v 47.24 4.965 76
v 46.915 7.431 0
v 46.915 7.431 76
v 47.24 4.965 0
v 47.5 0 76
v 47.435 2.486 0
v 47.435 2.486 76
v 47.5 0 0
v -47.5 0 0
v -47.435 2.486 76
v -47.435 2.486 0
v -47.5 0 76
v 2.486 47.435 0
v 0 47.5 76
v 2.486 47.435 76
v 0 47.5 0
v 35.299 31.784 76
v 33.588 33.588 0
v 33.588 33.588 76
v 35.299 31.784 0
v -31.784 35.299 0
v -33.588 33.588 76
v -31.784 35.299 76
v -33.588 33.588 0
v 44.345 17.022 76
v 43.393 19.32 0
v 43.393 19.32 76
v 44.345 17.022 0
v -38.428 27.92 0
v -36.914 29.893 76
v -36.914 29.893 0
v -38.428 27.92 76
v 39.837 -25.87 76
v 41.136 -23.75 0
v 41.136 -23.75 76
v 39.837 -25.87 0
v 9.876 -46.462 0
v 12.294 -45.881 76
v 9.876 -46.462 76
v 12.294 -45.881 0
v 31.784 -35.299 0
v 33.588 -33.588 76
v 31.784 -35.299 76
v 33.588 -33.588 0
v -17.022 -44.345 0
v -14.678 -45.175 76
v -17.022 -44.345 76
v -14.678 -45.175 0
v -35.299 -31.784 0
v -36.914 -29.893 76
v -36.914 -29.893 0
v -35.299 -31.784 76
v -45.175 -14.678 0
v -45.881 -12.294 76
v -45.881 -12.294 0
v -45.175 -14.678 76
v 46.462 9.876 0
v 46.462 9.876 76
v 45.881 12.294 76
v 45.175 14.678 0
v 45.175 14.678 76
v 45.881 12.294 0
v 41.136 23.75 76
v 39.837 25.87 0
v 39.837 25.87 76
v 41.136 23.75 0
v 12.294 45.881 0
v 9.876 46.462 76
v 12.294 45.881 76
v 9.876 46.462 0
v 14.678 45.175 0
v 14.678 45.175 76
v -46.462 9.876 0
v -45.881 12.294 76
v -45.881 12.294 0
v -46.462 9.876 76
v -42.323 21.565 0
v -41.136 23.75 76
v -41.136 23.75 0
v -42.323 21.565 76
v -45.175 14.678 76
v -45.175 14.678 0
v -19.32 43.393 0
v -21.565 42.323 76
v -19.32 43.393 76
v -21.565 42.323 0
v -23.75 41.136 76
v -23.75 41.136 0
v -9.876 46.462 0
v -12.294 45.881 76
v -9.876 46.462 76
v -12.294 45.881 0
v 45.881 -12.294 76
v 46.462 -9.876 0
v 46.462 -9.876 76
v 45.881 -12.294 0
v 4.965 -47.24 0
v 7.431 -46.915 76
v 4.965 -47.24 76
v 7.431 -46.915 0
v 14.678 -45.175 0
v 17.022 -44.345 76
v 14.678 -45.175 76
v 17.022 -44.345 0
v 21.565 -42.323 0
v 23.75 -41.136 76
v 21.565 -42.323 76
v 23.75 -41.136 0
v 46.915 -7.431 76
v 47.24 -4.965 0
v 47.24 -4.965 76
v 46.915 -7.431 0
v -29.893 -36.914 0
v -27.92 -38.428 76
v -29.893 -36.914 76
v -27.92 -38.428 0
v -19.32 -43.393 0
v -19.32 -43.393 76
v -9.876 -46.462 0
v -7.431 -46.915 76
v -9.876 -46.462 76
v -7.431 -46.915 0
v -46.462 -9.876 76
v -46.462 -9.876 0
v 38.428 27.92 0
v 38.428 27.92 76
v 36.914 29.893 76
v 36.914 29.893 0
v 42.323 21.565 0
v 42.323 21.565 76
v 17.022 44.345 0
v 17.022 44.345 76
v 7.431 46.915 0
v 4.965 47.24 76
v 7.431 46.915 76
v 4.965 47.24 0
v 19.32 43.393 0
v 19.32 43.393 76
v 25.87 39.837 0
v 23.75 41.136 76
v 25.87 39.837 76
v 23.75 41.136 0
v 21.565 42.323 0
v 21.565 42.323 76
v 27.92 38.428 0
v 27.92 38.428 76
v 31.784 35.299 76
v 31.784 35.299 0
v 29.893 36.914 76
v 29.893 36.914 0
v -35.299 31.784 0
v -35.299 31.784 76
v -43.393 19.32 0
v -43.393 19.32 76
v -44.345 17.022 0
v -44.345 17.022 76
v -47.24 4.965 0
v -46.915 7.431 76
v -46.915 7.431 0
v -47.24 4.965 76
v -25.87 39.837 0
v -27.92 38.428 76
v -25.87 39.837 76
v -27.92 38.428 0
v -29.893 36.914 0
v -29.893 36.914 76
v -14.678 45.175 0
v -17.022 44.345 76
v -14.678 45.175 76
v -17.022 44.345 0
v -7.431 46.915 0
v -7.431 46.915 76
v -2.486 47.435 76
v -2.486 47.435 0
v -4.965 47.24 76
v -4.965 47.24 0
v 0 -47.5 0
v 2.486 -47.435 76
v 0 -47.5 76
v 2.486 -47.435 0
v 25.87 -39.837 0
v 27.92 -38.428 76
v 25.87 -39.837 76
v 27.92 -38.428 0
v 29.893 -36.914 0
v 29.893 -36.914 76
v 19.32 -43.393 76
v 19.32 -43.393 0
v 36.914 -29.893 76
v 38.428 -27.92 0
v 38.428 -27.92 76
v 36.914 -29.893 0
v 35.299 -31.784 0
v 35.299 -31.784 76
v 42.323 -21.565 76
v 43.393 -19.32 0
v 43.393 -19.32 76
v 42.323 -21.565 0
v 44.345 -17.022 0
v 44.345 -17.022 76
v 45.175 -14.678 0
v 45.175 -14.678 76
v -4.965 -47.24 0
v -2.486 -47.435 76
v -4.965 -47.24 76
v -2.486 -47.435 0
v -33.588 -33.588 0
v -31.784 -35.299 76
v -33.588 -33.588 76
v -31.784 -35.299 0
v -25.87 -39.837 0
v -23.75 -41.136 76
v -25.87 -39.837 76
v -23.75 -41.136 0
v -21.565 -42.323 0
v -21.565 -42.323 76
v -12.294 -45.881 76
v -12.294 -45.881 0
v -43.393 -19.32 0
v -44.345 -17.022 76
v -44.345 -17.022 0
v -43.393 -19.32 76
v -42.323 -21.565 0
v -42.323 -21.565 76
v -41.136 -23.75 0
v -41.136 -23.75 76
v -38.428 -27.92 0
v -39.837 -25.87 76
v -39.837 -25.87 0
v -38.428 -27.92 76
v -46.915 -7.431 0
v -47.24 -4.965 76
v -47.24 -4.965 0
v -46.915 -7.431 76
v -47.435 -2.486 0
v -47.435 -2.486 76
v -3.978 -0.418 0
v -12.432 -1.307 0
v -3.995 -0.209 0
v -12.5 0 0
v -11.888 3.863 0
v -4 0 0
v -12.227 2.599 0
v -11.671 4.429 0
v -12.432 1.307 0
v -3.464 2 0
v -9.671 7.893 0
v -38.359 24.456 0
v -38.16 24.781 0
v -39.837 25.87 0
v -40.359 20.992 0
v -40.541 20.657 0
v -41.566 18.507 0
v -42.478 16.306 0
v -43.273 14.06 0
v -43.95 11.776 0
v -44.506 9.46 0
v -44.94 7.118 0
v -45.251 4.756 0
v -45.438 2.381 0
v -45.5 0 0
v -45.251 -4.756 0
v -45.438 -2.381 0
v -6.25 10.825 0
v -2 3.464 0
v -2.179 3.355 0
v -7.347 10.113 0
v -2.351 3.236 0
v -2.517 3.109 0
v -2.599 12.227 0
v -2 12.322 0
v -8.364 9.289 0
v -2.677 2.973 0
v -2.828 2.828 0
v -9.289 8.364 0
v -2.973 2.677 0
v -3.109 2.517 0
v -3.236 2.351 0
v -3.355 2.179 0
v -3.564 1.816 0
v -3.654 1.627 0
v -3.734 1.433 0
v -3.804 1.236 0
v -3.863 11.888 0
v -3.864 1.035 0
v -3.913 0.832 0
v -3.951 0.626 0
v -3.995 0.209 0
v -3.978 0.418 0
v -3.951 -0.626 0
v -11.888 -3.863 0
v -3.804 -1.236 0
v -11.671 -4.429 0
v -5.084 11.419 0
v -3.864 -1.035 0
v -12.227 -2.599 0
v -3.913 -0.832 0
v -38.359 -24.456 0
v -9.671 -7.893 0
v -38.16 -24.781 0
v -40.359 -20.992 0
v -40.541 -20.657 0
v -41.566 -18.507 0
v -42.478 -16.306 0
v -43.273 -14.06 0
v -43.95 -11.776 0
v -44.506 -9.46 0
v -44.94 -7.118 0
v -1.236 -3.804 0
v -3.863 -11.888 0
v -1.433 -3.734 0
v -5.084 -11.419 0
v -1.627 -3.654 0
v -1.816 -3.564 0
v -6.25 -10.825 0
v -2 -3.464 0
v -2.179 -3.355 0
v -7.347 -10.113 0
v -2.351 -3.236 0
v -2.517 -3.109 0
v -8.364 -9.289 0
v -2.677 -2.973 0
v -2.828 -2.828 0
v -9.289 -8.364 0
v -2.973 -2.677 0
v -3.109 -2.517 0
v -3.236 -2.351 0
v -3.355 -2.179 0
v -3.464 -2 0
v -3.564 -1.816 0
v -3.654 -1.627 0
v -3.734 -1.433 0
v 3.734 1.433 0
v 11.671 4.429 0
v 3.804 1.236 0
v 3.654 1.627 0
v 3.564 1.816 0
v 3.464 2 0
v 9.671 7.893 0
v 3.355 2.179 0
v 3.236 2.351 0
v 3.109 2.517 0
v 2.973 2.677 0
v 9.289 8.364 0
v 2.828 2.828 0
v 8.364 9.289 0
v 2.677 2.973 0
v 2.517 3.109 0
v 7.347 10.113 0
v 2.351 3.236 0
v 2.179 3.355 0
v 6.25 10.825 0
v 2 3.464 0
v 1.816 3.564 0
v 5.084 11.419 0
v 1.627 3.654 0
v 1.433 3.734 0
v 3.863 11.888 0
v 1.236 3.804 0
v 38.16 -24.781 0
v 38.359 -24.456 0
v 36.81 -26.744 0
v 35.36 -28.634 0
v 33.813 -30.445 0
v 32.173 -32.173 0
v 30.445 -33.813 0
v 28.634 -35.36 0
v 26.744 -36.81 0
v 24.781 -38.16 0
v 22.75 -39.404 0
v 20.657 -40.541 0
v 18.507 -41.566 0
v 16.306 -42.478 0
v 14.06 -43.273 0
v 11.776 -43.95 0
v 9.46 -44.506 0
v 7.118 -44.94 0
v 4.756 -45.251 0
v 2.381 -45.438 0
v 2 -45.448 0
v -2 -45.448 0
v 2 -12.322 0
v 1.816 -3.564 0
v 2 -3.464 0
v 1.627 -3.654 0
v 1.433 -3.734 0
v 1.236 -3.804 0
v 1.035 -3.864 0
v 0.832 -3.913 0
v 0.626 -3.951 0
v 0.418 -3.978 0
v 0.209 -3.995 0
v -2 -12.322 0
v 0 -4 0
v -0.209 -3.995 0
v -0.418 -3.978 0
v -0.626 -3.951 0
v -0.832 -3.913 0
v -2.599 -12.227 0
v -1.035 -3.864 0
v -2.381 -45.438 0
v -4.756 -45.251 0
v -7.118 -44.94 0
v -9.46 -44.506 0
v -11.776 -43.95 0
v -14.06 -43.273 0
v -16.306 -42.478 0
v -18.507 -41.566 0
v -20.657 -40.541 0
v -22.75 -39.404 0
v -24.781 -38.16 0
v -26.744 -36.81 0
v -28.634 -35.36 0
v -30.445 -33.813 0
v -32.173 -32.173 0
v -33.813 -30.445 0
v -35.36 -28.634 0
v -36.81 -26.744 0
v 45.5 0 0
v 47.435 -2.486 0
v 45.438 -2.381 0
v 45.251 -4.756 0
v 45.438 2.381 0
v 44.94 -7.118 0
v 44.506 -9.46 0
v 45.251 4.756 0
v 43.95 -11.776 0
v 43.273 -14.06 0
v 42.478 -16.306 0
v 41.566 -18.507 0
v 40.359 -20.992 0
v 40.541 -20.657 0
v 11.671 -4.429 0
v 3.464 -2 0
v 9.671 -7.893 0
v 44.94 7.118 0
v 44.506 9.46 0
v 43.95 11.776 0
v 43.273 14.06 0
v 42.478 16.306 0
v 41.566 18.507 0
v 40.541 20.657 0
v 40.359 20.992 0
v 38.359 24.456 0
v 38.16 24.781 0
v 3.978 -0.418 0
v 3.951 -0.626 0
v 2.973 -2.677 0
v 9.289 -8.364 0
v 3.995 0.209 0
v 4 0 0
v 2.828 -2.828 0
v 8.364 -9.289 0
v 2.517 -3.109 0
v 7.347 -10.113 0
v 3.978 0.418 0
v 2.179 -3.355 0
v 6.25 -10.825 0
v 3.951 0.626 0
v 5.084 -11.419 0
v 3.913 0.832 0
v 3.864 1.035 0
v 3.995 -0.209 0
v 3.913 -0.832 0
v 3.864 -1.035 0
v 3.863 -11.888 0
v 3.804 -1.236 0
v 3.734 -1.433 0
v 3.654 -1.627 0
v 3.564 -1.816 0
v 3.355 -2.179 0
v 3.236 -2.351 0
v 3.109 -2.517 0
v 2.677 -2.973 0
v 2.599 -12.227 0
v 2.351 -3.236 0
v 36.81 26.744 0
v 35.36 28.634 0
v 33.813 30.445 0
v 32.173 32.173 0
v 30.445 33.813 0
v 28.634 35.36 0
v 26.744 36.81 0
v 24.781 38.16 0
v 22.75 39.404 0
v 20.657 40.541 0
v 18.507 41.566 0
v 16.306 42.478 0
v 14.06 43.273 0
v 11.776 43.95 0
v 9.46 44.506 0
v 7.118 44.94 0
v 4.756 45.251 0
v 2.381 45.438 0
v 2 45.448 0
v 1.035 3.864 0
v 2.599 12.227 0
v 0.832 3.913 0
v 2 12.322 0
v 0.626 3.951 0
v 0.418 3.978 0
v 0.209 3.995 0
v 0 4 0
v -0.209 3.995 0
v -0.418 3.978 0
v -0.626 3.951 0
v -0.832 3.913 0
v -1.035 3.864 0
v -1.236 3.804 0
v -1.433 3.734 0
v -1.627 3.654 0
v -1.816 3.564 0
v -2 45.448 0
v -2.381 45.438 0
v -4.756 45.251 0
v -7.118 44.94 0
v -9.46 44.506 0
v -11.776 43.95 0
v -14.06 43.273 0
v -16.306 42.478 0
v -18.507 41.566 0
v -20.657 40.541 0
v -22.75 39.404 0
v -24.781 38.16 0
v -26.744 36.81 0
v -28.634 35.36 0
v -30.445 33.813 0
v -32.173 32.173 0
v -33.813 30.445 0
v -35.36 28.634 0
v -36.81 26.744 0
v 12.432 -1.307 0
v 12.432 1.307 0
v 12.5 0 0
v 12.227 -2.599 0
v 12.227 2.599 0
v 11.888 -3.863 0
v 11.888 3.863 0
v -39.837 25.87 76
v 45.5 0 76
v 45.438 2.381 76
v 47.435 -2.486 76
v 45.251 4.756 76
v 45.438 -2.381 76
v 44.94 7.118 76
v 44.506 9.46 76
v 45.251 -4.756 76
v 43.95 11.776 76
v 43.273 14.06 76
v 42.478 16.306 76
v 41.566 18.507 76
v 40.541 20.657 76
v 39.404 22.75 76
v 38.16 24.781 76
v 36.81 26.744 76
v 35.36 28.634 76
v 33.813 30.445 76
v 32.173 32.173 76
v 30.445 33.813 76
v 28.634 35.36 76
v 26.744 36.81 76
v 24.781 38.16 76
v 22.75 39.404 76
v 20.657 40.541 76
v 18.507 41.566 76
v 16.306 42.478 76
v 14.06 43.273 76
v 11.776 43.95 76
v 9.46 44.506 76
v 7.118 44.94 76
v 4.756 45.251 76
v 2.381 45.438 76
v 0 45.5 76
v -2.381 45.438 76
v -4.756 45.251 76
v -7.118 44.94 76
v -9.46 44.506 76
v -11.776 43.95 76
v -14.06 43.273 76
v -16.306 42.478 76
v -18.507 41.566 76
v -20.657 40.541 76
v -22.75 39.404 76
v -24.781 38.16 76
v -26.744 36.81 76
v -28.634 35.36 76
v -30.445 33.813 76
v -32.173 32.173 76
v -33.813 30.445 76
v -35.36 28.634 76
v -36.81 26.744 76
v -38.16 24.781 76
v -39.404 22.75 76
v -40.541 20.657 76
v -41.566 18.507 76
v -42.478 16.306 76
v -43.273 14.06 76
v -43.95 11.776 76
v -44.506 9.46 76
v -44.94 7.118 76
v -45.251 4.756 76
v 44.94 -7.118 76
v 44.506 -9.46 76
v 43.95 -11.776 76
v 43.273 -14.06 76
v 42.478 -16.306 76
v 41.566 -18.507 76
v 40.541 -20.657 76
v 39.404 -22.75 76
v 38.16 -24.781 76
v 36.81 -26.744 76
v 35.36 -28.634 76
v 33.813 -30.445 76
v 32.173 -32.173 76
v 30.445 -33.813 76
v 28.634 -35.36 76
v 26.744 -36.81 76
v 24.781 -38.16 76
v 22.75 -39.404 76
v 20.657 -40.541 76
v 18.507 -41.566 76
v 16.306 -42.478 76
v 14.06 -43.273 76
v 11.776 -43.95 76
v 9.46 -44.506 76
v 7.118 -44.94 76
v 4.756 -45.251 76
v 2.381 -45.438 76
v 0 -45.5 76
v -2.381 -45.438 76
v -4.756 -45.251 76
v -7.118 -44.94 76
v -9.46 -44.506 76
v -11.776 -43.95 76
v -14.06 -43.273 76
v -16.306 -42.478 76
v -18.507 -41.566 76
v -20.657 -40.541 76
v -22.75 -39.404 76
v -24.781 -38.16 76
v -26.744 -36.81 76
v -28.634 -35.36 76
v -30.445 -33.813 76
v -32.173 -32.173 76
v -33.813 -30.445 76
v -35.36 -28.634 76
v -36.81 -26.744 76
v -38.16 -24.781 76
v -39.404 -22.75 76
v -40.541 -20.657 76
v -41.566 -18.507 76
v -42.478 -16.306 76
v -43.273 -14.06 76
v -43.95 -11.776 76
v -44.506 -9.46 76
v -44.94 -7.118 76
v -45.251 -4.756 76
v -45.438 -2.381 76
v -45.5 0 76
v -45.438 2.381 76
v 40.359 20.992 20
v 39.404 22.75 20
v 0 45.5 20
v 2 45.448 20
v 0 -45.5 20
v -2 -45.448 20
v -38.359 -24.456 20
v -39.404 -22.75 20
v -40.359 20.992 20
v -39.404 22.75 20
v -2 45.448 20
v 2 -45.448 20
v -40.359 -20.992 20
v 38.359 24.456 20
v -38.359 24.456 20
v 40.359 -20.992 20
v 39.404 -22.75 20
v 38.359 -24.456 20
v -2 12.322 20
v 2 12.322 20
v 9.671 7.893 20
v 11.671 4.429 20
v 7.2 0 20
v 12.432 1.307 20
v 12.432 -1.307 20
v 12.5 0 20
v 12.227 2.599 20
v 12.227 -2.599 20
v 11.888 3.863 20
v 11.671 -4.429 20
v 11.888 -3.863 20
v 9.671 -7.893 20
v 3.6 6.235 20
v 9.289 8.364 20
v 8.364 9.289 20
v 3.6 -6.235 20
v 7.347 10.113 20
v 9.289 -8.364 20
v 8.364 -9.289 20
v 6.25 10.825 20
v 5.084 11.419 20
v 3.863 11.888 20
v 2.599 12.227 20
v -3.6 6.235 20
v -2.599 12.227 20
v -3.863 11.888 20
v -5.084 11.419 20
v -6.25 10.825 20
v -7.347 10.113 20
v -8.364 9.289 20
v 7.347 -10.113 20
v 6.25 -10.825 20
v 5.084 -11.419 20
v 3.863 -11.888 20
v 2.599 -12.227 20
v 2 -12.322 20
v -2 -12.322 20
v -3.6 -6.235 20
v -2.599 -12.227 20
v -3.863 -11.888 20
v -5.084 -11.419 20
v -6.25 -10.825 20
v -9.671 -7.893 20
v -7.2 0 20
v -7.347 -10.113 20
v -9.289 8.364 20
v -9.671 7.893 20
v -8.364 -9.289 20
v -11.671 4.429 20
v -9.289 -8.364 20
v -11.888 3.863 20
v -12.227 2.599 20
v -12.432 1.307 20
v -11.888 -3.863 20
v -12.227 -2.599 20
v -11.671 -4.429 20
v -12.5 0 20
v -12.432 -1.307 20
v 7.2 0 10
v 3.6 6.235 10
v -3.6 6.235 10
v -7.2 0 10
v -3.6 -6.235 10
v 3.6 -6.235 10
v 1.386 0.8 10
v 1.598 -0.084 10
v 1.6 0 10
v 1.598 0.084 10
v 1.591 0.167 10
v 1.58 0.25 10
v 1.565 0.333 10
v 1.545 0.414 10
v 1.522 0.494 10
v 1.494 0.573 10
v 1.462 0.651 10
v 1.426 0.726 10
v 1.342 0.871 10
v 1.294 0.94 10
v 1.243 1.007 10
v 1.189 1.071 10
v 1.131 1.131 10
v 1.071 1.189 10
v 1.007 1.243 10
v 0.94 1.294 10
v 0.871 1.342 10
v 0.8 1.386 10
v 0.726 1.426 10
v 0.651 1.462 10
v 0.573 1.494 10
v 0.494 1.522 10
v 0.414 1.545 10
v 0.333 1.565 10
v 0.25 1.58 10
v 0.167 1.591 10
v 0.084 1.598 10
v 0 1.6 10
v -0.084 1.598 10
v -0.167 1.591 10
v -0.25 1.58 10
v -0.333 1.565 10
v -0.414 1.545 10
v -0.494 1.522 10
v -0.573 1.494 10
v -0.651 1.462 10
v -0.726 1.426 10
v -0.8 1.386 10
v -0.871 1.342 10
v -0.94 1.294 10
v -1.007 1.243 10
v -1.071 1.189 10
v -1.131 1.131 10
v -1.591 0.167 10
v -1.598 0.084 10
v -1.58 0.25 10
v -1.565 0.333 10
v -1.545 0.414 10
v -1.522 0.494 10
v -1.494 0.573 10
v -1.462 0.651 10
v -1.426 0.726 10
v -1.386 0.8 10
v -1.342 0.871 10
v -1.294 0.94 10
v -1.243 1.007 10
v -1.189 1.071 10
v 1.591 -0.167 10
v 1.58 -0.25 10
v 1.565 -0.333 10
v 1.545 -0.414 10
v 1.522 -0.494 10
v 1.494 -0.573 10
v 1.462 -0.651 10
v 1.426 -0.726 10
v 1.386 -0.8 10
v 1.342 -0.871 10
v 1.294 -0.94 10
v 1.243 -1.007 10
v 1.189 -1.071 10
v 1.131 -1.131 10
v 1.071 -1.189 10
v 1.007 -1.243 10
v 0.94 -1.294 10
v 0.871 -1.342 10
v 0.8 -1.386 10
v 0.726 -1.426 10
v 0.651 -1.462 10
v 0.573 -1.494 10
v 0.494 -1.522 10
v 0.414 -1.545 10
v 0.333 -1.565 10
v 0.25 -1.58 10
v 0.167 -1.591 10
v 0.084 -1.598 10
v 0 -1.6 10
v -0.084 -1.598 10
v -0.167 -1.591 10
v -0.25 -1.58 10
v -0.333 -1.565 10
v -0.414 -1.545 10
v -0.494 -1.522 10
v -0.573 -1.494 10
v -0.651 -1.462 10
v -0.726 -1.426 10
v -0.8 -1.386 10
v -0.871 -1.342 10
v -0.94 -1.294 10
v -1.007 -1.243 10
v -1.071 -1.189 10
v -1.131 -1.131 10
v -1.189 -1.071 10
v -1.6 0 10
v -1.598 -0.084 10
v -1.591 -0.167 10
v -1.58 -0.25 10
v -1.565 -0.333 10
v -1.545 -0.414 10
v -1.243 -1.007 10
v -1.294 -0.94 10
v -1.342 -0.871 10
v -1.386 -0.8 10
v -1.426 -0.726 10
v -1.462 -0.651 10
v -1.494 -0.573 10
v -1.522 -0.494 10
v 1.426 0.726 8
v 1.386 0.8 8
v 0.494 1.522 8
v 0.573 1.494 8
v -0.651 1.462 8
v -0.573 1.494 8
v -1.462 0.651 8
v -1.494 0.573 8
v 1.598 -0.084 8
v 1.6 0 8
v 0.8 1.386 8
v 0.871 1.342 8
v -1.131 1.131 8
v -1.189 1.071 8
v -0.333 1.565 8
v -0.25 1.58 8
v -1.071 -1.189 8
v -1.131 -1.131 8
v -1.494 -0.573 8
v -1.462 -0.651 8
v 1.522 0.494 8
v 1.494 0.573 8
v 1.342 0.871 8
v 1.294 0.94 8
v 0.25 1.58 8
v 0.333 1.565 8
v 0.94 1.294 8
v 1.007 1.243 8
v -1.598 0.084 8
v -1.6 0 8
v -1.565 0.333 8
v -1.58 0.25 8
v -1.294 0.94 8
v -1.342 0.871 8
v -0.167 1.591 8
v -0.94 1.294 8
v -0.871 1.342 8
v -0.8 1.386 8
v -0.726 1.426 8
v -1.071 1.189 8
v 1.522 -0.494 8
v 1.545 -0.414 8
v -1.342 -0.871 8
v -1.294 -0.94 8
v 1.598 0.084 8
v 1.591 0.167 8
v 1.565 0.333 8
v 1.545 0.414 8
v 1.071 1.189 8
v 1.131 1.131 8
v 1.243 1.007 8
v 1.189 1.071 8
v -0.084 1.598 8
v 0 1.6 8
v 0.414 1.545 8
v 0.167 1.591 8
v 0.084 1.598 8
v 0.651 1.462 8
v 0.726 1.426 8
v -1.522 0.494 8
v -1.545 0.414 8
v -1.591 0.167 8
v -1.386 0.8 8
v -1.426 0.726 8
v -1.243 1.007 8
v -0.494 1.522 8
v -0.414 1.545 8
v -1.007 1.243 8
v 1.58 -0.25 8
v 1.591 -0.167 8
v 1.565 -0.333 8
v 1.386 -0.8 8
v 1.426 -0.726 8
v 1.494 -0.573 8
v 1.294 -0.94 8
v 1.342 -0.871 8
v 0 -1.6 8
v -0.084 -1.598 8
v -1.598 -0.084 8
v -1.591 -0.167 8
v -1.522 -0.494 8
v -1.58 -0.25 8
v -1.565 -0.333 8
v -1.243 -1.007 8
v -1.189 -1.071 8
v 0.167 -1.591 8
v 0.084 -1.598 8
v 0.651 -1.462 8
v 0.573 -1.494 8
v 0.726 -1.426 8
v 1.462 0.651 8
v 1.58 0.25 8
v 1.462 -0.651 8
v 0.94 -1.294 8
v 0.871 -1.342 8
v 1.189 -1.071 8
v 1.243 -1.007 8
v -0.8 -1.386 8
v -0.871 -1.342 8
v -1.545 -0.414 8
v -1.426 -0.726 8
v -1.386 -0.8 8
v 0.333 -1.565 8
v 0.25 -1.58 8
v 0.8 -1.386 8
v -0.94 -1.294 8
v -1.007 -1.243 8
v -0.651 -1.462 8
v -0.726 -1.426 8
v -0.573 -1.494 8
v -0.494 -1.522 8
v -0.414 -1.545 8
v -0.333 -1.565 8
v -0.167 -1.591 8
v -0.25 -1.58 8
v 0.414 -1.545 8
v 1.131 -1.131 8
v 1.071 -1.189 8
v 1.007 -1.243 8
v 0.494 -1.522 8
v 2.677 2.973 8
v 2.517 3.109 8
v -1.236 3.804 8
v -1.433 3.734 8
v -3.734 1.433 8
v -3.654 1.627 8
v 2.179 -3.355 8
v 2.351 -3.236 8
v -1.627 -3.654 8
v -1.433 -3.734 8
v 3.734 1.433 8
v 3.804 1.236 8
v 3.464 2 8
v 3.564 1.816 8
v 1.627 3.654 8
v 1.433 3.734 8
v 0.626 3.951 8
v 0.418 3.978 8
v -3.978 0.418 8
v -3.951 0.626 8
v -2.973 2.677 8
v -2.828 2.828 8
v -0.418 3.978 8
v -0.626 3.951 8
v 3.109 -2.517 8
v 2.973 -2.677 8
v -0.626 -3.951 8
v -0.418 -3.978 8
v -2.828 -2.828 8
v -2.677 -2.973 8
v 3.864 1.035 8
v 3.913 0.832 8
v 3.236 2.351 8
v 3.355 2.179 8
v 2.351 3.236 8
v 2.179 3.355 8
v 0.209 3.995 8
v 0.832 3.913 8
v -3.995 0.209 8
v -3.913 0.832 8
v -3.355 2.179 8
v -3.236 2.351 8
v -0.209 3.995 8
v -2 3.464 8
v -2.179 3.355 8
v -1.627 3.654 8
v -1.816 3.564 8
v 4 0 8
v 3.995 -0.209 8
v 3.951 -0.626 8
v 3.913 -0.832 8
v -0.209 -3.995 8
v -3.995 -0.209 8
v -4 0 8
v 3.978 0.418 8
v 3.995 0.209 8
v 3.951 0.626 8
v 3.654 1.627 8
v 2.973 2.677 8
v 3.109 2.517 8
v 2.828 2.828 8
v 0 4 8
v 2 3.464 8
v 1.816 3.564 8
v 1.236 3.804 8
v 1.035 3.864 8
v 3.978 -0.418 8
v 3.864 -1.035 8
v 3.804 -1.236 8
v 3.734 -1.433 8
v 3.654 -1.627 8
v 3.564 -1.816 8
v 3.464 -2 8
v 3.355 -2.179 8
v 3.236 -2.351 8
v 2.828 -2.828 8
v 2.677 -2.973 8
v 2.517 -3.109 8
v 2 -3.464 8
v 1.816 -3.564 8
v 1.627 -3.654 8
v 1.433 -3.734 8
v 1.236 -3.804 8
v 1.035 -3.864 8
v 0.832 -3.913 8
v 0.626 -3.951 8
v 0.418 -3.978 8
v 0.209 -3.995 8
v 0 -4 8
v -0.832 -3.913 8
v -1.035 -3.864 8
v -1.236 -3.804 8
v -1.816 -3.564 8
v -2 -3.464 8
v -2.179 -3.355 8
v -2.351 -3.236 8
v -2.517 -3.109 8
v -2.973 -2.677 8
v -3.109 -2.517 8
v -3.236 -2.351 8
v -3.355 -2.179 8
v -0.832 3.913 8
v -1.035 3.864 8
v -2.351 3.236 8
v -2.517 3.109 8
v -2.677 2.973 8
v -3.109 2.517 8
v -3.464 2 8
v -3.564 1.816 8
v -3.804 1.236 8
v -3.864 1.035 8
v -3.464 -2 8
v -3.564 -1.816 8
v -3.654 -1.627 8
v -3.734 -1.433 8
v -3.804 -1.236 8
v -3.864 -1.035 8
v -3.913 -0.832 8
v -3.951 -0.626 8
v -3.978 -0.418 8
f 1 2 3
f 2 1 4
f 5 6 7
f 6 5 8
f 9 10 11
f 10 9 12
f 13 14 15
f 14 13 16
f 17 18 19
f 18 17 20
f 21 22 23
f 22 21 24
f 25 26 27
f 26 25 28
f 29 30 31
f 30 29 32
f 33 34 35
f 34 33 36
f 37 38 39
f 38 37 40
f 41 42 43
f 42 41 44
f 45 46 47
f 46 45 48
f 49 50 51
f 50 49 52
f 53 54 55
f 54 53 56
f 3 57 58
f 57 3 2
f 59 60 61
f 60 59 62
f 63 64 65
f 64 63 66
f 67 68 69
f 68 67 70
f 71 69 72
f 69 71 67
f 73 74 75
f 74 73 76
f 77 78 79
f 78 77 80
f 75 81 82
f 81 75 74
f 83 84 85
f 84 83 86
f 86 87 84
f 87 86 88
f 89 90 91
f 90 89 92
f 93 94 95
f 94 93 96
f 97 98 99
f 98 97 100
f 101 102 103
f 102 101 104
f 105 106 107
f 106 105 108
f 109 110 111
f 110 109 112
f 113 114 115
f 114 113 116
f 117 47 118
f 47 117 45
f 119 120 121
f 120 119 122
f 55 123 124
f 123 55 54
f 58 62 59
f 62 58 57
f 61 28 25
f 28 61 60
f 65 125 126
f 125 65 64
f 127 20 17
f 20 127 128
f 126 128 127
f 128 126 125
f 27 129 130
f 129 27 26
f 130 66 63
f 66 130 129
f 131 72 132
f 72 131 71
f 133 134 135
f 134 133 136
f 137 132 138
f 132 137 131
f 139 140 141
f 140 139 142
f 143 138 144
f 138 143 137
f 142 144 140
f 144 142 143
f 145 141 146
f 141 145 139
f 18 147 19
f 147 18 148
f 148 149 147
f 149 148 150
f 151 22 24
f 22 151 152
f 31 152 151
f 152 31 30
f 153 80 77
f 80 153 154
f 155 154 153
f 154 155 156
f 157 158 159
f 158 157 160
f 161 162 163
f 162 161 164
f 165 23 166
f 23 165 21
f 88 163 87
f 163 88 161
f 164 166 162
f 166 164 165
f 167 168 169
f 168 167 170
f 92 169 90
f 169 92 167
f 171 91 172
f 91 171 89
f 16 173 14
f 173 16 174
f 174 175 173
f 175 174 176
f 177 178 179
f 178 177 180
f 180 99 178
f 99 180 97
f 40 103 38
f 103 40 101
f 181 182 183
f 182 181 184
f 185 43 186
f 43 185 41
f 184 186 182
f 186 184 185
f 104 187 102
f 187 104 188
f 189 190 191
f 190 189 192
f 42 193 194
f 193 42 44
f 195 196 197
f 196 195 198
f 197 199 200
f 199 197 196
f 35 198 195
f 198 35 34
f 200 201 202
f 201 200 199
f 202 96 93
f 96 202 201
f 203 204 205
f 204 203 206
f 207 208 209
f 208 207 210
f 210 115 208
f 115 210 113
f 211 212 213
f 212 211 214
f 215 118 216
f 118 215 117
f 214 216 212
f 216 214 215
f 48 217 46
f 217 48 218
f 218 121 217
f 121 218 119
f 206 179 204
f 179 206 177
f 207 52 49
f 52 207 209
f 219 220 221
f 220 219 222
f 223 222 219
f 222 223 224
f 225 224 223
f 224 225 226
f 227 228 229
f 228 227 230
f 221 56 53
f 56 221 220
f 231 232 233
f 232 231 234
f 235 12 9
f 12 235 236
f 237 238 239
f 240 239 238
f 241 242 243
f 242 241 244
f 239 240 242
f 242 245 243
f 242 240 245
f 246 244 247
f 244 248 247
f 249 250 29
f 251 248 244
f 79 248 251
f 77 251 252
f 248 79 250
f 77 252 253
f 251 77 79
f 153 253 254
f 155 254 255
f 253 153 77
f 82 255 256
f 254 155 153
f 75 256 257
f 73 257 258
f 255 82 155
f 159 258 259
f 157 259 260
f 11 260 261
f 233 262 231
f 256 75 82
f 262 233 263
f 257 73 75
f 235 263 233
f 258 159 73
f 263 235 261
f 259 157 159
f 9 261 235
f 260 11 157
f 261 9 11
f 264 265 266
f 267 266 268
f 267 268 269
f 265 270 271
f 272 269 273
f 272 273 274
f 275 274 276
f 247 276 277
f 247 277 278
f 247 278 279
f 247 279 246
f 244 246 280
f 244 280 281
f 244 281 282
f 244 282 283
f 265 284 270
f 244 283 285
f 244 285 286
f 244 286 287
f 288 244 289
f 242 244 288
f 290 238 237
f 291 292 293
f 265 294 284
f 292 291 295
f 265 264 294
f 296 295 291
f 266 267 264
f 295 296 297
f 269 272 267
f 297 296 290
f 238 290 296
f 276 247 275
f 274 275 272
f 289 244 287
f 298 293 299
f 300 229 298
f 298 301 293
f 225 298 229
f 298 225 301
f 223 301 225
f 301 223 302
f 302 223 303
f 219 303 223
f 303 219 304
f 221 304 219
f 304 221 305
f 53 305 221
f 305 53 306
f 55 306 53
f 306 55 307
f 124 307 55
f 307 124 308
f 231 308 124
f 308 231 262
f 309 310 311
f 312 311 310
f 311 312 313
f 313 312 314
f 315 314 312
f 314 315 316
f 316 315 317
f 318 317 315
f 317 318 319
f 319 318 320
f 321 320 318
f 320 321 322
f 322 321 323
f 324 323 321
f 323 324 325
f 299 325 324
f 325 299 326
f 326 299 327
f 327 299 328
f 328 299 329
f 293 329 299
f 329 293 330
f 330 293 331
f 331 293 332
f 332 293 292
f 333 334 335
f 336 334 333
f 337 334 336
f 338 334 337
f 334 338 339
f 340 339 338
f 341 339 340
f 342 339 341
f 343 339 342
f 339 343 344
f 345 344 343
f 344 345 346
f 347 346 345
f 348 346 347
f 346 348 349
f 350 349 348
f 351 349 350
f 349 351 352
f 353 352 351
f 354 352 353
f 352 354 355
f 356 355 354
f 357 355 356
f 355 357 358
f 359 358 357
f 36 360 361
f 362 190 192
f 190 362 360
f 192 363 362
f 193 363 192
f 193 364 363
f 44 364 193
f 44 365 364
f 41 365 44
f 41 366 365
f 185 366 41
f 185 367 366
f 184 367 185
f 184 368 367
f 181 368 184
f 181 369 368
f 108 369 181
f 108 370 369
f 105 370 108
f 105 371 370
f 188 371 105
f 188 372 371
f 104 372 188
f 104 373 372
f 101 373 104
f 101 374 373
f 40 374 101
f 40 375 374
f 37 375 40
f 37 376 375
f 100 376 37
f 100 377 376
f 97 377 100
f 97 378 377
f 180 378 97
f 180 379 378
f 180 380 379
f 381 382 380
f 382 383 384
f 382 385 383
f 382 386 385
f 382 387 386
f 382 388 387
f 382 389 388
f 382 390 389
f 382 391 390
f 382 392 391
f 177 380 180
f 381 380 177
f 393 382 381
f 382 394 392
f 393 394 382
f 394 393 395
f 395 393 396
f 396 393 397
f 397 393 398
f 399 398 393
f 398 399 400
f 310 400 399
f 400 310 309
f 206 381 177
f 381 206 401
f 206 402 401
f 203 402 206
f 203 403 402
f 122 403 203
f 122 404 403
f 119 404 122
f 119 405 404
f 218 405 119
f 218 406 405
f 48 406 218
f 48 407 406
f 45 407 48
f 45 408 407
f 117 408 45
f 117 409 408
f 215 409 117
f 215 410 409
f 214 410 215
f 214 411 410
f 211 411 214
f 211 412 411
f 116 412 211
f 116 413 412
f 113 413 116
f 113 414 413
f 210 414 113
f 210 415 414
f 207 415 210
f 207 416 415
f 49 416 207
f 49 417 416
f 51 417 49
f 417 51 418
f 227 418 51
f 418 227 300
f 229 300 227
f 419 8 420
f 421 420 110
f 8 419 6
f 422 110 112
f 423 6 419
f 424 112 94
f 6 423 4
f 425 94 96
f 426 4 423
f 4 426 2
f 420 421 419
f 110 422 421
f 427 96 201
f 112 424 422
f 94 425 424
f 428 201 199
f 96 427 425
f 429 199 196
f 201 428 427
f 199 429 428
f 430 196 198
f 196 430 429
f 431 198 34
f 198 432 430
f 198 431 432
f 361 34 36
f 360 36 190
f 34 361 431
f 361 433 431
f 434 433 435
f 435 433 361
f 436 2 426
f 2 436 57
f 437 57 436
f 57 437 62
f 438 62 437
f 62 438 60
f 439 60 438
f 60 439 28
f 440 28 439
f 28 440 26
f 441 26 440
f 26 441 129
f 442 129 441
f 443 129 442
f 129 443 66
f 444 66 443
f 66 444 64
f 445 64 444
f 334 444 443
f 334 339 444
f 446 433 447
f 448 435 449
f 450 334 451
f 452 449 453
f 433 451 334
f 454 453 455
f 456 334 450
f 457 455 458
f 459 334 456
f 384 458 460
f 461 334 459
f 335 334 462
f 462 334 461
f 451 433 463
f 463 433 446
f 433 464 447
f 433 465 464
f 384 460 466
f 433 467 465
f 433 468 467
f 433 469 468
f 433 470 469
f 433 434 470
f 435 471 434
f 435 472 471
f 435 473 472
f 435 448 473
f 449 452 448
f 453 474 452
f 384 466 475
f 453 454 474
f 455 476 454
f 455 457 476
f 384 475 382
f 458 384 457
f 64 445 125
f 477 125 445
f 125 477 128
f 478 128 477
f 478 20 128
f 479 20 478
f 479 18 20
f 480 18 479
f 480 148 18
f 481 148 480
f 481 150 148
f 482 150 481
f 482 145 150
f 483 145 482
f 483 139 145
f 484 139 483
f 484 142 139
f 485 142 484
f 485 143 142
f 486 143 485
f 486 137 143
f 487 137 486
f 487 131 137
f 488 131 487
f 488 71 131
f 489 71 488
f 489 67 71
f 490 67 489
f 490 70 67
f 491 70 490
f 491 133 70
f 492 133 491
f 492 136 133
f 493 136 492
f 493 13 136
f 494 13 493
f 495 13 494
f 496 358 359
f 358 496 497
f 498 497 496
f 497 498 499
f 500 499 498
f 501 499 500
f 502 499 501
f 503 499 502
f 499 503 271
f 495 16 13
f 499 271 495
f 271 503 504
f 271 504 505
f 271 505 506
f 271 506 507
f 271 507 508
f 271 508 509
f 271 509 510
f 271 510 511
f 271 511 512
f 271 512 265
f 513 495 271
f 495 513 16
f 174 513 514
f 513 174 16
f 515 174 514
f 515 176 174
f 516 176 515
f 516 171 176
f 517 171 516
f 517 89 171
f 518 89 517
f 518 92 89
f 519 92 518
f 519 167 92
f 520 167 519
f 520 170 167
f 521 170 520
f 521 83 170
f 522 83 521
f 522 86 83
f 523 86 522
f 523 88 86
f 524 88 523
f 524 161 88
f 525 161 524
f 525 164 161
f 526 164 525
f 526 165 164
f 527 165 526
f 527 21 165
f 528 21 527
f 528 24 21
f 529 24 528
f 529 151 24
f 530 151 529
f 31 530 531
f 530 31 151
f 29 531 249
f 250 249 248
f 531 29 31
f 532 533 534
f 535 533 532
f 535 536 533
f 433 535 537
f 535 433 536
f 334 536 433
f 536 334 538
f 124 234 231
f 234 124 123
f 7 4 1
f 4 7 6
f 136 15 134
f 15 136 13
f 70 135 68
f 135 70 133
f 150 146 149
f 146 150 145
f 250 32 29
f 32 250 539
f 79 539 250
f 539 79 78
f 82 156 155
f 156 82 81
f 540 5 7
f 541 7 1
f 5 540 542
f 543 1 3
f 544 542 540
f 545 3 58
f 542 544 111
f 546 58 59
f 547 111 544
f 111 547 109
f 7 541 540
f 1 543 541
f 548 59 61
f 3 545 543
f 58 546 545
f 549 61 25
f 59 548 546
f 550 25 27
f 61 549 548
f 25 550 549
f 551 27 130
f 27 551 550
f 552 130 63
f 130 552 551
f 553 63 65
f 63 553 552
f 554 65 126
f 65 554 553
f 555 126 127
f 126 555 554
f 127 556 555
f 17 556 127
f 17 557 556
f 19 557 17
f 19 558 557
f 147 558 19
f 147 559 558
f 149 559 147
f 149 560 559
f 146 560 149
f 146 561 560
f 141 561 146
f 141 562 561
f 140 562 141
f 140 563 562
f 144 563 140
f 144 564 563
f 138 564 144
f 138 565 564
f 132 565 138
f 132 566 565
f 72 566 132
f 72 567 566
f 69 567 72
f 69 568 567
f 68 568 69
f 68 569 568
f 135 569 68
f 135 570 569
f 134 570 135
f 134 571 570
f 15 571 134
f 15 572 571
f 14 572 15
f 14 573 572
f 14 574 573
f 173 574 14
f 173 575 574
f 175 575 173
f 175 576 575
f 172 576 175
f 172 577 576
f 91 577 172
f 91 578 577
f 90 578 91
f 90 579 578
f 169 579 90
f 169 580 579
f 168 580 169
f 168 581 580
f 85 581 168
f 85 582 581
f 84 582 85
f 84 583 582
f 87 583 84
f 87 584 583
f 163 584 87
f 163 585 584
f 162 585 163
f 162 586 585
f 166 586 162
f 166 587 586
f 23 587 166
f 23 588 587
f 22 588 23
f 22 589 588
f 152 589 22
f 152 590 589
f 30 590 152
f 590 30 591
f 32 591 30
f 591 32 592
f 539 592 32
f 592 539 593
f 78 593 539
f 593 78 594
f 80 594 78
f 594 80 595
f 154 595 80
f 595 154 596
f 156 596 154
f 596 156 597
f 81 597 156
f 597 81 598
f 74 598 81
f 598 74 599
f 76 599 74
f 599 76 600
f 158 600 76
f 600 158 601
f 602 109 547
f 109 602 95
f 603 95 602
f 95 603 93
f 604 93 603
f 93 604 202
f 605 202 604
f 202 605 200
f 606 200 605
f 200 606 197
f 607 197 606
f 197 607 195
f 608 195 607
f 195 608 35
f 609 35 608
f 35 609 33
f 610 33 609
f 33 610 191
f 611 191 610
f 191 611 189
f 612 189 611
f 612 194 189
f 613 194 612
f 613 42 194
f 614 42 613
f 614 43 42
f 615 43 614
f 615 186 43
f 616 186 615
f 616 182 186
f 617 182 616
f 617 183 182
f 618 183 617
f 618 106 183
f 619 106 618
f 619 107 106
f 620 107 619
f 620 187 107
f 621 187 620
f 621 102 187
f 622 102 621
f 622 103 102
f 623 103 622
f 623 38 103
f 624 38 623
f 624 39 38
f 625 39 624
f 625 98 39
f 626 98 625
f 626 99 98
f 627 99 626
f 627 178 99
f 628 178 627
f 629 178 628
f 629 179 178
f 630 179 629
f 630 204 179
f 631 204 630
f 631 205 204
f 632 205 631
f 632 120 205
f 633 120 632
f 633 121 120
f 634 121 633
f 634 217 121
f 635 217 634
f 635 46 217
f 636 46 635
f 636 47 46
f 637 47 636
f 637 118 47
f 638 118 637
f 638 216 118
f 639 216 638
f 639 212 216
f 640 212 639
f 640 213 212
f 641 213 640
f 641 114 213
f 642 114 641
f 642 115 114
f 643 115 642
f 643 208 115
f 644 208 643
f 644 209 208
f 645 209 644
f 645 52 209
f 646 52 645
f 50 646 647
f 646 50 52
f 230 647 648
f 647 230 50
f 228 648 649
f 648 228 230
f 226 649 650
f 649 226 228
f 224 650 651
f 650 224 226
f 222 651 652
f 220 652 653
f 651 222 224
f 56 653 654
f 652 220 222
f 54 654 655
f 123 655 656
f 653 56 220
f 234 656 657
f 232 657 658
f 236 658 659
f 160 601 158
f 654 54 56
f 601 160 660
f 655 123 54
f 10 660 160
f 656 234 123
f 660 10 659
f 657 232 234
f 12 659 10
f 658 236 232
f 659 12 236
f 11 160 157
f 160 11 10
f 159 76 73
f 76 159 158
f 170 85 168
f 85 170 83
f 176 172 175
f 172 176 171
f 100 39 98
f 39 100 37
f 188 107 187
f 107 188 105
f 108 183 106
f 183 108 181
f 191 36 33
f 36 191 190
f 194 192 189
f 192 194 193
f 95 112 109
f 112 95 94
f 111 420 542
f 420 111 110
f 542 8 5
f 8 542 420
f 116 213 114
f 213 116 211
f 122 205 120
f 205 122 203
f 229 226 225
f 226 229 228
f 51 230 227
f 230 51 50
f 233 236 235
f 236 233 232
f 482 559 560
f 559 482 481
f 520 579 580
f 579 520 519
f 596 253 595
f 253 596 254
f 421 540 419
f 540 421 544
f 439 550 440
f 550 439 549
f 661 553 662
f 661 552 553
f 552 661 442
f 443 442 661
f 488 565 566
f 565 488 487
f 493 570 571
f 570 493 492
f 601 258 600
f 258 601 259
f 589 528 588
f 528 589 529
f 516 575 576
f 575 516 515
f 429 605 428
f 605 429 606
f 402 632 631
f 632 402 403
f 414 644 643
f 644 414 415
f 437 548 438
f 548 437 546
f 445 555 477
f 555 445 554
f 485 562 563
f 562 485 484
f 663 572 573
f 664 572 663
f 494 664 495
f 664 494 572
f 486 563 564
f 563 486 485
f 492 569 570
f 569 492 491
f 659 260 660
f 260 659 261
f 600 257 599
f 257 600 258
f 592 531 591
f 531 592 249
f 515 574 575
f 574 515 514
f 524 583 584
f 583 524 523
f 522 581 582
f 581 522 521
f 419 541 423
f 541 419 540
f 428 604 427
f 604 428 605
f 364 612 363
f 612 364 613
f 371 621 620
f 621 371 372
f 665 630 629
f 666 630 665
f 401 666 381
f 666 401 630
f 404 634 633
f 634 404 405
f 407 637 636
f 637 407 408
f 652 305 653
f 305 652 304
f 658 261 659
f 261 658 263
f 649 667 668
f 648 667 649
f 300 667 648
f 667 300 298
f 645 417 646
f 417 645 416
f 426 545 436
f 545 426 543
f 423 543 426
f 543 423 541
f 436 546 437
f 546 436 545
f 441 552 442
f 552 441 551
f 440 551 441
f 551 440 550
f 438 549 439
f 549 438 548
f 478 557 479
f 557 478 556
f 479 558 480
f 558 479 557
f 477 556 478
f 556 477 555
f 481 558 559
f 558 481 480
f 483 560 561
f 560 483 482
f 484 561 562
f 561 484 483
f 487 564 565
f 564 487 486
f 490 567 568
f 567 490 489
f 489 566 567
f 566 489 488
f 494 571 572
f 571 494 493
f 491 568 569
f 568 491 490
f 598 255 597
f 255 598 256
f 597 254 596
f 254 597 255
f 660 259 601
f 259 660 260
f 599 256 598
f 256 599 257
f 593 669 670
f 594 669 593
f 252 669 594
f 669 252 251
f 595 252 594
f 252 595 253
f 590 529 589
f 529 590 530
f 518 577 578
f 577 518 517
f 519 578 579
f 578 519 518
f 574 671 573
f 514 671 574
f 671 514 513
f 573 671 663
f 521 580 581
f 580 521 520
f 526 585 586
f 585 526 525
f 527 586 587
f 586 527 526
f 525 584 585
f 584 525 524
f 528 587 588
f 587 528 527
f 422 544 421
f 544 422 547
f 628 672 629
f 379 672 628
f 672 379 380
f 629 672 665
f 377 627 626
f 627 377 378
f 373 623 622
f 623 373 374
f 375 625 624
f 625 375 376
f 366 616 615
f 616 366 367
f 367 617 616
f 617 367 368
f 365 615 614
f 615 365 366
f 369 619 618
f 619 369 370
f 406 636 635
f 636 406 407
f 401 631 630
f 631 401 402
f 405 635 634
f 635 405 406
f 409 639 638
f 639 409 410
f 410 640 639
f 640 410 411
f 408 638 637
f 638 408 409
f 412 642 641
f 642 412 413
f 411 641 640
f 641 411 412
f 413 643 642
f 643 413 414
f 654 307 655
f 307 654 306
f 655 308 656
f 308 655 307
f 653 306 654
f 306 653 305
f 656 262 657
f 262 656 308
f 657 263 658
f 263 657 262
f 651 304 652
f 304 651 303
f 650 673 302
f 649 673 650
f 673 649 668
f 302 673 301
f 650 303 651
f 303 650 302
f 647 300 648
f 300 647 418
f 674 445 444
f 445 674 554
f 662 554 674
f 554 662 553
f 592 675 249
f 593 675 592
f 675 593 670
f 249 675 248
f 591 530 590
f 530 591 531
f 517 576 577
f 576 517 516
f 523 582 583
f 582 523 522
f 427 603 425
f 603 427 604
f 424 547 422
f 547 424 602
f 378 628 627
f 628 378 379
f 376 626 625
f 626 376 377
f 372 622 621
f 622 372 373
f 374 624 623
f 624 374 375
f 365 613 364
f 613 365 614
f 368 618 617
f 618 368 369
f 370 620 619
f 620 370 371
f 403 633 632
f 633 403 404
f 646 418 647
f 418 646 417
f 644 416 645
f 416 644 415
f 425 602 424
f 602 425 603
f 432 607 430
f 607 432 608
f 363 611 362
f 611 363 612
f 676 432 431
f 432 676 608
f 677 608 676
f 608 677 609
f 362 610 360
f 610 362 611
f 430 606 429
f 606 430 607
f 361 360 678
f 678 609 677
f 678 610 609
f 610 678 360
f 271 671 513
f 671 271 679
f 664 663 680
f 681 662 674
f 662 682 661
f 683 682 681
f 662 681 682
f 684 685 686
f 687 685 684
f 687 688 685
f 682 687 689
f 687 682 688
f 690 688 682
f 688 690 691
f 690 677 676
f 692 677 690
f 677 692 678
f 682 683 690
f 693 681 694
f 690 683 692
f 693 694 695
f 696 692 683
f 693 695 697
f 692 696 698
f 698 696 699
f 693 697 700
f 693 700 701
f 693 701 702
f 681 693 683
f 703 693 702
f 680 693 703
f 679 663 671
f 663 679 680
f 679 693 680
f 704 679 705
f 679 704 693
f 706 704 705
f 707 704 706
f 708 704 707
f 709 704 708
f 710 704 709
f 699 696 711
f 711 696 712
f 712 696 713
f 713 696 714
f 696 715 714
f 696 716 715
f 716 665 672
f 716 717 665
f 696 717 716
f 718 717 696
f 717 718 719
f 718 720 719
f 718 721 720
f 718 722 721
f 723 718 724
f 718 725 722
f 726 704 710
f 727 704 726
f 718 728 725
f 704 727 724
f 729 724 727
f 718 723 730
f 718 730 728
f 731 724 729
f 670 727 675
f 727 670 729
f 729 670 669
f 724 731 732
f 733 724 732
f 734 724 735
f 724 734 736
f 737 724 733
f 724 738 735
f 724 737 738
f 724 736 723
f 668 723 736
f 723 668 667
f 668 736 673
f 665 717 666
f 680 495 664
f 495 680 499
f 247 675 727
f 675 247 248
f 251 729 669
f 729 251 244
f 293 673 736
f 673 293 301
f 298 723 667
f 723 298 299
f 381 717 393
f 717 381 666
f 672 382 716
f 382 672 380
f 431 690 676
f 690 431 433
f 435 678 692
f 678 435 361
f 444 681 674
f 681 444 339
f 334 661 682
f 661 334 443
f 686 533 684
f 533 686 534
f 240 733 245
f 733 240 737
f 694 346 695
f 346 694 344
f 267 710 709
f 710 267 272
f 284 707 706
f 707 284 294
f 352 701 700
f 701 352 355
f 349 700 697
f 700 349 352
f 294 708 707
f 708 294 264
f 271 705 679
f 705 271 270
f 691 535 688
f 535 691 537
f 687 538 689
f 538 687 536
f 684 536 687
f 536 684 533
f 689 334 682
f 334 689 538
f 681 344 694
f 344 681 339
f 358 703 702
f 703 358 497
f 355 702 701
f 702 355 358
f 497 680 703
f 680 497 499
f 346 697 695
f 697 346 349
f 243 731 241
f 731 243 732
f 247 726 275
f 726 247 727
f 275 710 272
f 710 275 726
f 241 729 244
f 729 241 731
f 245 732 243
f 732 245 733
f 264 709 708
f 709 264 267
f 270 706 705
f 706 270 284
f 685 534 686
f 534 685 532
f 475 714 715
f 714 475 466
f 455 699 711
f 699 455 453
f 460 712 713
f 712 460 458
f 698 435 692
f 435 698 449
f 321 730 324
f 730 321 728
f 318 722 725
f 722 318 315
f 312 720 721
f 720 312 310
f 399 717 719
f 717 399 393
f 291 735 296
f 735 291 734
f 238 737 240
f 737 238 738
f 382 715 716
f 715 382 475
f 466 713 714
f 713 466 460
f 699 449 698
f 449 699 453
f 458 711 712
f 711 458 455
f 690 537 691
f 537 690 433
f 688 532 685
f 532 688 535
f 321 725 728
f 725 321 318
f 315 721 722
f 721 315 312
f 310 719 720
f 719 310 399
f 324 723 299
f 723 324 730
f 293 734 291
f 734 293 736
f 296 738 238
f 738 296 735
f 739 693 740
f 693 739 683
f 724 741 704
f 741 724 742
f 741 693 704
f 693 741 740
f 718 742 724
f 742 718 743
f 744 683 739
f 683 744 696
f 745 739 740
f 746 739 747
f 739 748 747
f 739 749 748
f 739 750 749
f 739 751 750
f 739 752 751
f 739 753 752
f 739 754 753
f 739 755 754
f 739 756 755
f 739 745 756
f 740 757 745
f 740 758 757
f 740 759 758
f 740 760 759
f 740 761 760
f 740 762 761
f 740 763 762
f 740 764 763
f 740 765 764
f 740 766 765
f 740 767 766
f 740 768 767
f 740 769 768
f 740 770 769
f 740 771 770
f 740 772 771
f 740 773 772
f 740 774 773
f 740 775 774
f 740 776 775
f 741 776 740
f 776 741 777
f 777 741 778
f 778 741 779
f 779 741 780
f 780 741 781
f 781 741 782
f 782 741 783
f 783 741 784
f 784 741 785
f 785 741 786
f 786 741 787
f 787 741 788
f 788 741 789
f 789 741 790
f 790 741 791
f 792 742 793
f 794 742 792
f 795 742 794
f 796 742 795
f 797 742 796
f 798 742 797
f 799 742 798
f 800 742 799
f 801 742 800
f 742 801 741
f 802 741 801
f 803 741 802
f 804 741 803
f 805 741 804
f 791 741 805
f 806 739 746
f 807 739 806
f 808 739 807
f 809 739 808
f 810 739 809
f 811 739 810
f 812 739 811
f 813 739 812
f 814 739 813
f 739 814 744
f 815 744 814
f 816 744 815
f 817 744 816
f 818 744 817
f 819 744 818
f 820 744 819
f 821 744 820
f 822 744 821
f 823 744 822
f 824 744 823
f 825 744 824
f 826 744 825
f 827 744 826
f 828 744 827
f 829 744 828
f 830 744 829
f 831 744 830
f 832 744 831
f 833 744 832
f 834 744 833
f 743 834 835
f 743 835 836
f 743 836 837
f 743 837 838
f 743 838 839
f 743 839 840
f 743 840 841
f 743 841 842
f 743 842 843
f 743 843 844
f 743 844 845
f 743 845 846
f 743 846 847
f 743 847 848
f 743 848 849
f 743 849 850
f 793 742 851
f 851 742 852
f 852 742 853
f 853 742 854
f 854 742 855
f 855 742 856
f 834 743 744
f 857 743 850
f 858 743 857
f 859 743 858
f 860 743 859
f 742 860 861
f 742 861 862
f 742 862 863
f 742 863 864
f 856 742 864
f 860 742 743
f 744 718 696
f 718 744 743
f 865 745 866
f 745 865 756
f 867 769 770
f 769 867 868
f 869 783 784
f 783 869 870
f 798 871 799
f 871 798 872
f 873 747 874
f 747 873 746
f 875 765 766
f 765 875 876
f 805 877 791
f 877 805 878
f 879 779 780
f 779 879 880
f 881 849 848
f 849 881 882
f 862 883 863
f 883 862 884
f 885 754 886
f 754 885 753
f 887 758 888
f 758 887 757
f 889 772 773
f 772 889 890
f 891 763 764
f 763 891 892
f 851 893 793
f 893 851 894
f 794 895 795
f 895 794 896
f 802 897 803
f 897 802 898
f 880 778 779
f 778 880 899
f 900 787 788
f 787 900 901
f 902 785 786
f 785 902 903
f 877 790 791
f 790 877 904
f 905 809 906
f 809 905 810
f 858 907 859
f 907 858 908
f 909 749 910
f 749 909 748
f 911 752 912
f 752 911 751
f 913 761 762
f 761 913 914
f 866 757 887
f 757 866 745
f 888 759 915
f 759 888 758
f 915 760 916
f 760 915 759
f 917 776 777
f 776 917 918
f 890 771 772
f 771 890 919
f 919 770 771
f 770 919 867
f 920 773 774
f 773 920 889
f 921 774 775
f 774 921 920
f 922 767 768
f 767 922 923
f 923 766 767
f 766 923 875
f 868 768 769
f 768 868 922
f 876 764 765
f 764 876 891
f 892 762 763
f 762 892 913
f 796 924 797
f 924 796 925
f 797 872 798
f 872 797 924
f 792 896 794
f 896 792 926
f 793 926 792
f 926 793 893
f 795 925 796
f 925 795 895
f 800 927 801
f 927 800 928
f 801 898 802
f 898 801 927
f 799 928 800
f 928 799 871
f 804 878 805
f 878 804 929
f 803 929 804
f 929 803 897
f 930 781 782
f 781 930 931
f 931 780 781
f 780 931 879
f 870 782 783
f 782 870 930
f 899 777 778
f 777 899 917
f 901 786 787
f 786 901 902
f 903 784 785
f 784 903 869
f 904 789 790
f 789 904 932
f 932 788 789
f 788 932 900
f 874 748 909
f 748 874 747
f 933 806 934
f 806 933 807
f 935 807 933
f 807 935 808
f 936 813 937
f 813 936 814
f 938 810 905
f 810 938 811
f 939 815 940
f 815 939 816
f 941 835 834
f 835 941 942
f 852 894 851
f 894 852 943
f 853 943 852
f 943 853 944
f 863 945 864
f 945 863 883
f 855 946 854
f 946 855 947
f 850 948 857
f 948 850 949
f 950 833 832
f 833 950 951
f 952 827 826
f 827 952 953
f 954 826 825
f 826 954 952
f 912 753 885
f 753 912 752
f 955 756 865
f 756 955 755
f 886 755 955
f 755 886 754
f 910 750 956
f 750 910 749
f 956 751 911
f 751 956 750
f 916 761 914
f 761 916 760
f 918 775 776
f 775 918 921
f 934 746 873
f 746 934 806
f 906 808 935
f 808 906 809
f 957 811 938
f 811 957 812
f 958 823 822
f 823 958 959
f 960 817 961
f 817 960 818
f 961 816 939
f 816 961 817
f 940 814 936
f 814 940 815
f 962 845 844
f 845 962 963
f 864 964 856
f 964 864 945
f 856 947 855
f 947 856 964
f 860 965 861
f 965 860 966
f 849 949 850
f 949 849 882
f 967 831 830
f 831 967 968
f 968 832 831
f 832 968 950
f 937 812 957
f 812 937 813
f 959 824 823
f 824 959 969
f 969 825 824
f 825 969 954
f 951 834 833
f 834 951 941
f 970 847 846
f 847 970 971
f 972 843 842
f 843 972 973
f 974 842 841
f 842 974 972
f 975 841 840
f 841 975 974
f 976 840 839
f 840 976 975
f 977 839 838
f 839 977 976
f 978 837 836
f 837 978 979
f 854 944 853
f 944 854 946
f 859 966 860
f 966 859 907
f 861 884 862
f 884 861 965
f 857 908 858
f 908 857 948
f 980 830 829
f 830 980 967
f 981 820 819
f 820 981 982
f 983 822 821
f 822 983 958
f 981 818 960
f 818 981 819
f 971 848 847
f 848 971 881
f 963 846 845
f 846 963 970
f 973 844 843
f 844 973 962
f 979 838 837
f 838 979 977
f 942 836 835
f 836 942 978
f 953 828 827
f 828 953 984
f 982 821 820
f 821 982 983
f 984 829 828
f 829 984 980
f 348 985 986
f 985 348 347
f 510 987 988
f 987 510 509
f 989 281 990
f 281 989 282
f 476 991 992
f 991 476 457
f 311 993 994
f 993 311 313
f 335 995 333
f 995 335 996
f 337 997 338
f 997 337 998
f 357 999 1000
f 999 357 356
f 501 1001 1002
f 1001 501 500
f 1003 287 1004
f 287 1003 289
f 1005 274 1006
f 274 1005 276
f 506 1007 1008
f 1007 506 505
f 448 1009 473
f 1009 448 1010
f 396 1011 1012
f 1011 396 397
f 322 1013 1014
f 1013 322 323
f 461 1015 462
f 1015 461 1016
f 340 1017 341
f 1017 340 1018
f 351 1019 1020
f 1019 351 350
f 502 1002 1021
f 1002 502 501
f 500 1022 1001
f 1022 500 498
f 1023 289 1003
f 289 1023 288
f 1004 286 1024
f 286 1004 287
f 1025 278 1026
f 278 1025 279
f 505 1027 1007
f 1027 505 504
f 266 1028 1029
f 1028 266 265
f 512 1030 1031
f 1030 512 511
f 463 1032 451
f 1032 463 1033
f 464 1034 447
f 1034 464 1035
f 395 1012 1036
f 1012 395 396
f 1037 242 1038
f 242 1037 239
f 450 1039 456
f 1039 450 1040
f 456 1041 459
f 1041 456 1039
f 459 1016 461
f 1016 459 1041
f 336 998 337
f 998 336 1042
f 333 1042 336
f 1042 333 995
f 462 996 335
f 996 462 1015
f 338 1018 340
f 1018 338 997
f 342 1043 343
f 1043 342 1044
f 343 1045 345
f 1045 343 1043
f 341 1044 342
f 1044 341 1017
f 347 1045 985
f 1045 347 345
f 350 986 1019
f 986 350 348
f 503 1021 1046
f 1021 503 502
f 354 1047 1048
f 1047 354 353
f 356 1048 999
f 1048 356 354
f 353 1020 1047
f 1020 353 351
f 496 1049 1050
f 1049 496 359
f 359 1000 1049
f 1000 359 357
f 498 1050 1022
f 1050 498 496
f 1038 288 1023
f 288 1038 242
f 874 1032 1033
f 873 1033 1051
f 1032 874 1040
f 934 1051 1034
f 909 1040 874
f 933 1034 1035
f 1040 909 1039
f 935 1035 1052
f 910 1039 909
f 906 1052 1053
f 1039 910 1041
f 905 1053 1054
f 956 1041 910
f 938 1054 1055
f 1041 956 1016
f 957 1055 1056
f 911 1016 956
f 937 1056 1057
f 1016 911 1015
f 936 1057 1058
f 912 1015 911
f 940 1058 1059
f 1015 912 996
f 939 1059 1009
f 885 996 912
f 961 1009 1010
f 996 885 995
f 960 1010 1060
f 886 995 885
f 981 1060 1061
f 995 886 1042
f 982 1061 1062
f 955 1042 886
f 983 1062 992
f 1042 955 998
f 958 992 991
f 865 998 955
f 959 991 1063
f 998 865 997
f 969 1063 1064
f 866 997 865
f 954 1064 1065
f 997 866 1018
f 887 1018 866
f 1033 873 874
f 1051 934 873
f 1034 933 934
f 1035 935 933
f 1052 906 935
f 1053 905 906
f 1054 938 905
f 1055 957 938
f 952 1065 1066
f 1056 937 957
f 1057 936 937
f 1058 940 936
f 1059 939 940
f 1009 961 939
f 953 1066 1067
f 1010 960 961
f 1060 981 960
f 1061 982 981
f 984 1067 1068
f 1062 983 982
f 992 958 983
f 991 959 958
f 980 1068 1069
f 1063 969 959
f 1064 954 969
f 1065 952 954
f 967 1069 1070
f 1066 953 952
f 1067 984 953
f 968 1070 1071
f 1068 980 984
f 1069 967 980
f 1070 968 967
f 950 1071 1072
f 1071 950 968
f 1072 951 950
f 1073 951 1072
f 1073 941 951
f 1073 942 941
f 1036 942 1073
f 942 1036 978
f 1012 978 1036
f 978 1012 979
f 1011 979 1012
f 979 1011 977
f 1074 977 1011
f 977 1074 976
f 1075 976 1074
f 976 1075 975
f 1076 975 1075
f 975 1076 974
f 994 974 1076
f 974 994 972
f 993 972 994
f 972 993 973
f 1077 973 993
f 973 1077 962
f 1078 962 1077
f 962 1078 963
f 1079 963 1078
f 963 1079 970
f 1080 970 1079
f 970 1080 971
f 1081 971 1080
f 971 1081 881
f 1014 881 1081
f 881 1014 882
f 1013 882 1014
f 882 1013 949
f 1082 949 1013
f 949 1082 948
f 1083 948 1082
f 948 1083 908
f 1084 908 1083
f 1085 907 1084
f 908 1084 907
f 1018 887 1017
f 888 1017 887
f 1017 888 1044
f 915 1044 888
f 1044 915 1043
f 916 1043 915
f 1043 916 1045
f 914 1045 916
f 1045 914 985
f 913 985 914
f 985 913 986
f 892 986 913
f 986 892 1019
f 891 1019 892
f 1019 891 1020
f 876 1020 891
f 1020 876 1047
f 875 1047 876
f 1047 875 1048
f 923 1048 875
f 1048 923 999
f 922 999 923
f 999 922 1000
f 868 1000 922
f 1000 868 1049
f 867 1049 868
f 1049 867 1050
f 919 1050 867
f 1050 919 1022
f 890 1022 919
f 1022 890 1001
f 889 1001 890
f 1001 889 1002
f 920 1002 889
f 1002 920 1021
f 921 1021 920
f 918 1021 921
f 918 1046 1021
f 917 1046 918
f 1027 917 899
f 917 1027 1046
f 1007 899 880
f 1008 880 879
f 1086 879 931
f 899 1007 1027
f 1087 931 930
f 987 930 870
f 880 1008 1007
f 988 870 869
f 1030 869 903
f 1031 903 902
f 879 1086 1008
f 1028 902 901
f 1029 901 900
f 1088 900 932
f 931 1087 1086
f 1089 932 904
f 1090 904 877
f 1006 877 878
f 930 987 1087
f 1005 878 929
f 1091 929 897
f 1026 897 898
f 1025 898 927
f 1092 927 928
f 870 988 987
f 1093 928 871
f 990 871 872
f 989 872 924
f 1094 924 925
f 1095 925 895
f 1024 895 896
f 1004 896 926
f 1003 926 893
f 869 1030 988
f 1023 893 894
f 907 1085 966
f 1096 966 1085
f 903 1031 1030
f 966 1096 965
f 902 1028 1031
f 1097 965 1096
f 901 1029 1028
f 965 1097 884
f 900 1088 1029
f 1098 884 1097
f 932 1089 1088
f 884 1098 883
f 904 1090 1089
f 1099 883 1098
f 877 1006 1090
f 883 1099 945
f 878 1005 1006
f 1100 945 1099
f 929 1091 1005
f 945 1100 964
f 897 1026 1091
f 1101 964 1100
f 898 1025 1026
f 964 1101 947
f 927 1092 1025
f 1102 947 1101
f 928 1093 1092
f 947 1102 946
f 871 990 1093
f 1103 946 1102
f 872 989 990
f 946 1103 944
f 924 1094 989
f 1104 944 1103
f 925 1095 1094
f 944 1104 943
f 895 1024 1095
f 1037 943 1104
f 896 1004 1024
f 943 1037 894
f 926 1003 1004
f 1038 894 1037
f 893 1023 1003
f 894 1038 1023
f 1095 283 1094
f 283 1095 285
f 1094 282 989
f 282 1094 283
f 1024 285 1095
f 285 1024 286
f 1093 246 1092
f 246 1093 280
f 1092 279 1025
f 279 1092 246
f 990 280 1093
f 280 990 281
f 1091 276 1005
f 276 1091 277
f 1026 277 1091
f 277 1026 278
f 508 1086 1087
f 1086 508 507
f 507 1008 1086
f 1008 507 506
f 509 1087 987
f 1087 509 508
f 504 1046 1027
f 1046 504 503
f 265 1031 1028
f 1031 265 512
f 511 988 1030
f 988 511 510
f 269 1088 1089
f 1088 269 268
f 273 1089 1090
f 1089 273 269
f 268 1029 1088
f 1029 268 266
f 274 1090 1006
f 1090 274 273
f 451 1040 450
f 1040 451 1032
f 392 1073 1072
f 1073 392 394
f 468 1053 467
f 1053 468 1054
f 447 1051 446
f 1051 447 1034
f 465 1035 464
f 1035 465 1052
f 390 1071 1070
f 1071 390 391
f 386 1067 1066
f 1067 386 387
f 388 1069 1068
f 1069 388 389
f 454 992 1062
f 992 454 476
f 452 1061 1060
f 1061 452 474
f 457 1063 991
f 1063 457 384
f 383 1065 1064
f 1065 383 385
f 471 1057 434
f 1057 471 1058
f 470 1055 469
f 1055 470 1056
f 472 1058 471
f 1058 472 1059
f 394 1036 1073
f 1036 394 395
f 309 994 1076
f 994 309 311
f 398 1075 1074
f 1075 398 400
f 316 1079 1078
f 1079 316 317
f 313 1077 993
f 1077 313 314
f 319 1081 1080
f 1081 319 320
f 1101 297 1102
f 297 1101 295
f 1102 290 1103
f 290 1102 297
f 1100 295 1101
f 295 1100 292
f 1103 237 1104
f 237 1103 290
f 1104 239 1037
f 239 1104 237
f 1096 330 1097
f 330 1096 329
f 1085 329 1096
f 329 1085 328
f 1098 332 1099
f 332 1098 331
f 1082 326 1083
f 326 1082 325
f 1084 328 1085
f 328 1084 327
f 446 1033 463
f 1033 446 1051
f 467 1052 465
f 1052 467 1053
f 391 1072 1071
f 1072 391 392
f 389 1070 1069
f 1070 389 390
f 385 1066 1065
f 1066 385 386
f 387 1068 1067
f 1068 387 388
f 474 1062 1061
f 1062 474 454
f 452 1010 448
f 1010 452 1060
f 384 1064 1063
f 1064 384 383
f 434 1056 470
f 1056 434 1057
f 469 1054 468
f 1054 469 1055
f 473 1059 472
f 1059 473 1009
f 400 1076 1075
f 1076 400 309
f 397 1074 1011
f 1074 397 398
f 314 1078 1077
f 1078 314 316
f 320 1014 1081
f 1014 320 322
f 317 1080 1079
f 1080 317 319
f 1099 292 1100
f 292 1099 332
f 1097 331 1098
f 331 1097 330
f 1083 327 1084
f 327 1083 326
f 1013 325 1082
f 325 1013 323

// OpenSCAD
$fn=120;

difference(){

cylinder(d=95,h=76);

translate([0,0,-1])cylinder(d=91,h=78);
translate([0,0,-1])
cylinder(d=3.2,h=4);

for(i=[0:60:300])
{
    rotate([0,0,i])
    translate([17,0,-1])
    scale([1,1.5,1])
    cylinder(d=10,h=4);
}
}
for(i=[0:60:330])
{
    rotate([0,0,i])
    translate([-2,7,0])
    cube(size=[4,40,20]);
}
difference(){
cylinder(d=25,h=20,$fn=60);
translate([0,0,10])cylinder(d=14.4,h=11,$fn=6);
translate([0,0,-1])cylinder(d=3.2,h=16);
translate([0,0,-1])cylinder(d=8,h=9);
}
